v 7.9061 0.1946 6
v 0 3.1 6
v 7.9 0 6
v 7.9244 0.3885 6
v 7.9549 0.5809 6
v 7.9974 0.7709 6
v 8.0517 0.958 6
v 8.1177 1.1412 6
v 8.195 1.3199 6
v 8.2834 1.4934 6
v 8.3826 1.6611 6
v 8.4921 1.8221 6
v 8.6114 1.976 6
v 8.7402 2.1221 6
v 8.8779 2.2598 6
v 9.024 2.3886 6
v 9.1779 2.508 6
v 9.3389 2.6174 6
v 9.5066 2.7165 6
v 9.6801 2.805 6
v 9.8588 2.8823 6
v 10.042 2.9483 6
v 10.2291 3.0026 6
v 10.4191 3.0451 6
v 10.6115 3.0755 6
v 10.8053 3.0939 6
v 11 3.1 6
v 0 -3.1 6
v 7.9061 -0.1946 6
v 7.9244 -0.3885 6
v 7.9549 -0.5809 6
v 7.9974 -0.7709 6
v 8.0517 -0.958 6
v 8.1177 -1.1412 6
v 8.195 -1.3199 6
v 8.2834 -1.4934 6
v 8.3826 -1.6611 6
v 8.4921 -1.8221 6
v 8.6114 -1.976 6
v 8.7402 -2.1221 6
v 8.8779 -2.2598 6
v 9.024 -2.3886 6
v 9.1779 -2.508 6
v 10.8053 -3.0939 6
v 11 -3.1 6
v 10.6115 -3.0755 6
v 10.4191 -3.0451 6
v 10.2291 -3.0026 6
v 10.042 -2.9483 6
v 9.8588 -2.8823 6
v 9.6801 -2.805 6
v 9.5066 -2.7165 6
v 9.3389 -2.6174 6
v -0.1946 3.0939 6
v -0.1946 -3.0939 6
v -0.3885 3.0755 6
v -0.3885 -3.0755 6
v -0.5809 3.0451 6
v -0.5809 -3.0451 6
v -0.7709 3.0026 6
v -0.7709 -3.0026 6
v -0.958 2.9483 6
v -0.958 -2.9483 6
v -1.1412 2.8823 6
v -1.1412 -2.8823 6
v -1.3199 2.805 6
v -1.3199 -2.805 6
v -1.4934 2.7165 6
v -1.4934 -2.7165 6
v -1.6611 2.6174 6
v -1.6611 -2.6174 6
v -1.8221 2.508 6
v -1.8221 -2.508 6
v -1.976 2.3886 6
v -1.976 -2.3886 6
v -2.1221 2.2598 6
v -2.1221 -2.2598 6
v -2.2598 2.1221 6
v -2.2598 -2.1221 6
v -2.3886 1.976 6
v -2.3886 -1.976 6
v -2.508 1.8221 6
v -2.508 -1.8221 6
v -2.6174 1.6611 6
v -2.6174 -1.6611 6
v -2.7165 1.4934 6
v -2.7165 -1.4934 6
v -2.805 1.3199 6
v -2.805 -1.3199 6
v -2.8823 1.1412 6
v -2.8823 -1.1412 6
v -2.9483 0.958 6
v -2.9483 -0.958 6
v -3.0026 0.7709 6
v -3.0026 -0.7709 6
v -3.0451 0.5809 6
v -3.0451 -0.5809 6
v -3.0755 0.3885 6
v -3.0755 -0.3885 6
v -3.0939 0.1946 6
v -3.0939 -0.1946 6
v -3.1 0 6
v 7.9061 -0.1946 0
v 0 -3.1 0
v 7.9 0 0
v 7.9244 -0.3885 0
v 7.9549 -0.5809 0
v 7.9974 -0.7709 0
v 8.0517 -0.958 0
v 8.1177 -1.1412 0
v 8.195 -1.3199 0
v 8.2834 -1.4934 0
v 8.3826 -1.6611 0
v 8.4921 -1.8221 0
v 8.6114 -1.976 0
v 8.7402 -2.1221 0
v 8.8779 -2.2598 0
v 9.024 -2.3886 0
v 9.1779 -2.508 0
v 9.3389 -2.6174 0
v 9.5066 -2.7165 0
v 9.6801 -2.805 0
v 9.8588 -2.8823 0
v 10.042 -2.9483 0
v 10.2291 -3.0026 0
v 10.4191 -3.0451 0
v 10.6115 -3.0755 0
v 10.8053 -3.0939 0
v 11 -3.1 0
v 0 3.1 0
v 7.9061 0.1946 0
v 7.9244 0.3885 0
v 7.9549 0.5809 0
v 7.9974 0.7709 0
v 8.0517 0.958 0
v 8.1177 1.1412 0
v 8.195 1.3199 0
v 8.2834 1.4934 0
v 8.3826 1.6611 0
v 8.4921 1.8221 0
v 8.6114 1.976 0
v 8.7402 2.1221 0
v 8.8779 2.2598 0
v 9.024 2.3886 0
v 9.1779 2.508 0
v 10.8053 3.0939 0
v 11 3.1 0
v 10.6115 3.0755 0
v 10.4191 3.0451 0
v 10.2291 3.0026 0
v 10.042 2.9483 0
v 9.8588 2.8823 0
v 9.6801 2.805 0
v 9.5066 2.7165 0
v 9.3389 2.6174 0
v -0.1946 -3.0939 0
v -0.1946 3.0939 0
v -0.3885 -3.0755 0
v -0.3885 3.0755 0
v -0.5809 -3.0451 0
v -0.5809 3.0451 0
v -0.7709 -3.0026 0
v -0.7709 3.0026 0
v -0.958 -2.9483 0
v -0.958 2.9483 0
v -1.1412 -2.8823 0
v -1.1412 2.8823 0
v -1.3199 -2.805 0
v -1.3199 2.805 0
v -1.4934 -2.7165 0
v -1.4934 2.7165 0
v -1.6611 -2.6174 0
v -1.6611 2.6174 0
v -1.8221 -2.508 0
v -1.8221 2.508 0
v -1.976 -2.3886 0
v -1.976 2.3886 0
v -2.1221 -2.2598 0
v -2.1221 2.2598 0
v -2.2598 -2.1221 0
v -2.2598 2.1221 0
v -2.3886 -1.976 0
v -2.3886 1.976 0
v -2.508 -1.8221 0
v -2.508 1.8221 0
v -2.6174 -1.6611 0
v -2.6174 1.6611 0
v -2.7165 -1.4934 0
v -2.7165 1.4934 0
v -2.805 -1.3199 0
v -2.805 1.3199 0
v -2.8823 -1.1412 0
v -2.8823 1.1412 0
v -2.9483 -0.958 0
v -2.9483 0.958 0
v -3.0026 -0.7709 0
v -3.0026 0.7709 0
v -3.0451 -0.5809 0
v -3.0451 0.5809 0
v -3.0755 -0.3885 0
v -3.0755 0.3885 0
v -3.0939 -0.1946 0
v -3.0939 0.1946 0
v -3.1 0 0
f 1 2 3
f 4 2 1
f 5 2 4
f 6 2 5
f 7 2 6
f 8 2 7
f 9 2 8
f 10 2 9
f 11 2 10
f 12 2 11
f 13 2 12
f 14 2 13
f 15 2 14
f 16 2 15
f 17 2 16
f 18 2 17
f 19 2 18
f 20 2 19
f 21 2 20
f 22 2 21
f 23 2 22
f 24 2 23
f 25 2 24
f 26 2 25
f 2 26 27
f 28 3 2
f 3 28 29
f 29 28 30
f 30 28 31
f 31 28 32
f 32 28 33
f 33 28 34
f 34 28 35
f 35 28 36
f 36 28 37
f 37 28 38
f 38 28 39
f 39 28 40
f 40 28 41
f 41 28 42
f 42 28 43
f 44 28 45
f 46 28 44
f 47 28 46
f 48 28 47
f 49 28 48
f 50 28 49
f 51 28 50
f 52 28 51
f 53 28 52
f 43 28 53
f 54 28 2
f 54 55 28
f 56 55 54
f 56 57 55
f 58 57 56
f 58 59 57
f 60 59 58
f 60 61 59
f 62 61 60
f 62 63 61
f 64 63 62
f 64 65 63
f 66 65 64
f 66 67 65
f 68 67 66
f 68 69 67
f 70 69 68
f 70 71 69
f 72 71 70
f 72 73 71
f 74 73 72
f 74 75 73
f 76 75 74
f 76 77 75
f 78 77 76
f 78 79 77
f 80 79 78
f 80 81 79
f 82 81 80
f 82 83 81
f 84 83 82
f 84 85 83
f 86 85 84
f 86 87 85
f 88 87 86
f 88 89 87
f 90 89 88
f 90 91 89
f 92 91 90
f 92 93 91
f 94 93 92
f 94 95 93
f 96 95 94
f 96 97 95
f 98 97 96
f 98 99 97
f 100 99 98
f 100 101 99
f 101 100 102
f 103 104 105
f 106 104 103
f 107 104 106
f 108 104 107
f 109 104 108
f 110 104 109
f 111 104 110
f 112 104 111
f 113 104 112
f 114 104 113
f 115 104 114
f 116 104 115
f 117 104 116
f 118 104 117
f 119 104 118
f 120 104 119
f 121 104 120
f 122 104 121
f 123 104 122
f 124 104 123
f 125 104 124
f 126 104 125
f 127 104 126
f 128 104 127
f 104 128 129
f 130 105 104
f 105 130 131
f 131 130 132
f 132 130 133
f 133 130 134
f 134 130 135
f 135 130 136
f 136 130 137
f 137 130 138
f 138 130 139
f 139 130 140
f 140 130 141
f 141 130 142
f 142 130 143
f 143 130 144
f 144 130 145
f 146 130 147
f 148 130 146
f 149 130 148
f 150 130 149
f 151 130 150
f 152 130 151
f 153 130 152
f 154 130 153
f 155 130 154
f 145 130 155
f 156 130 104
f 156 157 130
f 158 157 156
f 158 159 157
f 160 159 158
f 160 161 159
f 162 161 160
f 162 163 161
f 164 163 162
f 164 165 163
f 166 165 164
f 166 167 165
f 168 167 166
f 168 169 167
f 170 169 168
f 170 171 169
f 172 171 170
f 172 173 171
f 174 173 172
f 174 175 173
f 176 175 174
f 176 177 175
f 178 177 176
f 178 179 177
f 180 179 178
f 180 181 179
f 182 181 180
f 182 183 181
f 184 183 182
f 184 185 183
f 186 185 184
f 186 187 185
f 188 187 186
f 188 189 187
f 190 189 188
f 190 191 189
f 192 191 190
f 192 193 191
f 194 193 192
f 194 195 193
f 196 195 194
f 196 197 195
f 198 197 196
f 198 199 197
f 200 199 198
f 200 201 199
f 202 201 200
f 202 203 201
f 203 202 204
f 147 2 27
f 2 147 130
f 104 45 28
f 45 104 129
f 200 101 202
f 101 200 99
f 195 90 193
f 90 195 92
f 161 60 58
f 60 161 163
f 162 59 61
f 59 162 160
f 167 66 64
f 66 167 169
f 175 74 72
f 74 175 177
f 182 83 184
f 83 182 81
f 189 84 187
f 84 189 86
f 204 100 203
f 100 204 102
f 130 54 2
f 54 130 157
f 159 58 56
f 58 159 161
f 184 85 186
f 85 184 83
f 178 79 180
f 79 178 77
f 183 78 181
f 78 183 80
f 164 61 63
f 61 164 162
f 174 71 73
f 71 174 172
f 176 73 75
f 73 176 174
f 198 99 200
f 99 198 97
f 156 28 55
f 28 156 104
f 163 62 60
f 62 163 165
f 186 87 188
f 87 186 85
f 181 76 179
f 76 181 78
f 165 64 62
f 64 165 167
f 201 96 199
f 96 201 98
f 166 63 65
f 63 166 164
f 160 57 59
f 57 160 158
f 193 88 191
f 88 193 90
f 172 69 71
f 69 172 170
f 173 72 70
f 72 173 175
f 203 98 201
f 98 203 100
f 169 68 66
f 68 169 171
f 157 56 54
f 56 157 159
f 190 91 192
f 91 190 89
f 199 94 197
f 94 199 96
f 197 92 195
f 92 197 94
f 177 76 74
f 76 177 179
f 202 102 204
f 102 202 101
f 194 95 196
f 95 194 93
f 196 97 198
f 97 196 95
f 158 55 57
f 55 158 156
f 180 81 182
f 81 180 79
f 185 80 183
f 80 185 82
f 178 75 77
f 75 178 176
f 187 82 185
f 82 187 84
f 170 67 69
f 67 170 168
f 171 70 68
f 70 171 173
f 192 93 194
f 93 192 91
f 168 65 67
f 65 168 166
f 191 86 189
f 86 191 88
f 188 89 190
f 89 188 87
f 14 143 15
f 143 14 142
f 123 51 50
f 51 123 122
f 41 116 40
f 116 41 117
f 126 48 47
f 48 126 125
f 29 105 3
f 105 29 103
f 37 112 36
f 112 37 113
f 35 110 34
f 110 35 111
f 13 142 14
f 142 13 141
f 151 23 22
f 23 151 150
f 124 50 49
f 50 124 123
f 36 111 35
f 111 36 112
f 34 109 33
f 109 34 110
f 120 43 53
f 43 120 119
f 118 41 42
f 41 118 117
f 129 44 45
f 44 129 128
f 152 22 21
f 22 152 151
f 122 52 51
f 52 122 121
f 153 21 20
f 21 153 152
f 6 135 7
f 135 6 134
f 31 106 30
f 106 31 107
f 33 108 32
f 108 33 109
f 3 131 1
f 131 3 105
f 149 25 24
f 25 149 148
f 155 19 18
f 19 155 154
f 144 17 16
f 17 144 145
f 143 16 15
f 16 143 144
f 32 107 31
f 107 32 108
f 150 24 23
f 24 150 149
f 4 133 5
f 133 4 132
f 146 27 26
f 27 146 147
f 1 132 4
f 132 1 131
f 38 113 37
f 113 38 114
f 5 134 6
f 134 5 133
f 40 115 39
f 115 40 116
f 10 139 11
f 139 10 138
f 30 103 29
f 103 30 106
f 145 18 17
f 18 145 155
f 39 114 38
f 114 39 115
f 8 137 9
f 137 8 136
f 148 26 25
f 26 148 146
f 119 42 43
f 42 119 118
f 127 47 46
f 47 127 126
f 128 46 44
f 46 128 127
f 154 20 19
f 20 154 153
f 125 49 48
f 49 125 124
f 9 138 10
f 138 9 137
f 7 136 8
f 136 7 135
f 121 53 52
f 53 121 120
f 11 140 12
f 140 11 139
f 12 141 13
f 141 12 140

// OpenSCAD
r = 3.1;
th = 6;
length = 11;

$fn = 100;
difference(){
    union(){
        translate([0, -r, 0]) cube([length, 2*r, th]);
        cylinder(th, r, r);
    }
    translate([length, 0, 0]) cylinder(th, r, r);
}
